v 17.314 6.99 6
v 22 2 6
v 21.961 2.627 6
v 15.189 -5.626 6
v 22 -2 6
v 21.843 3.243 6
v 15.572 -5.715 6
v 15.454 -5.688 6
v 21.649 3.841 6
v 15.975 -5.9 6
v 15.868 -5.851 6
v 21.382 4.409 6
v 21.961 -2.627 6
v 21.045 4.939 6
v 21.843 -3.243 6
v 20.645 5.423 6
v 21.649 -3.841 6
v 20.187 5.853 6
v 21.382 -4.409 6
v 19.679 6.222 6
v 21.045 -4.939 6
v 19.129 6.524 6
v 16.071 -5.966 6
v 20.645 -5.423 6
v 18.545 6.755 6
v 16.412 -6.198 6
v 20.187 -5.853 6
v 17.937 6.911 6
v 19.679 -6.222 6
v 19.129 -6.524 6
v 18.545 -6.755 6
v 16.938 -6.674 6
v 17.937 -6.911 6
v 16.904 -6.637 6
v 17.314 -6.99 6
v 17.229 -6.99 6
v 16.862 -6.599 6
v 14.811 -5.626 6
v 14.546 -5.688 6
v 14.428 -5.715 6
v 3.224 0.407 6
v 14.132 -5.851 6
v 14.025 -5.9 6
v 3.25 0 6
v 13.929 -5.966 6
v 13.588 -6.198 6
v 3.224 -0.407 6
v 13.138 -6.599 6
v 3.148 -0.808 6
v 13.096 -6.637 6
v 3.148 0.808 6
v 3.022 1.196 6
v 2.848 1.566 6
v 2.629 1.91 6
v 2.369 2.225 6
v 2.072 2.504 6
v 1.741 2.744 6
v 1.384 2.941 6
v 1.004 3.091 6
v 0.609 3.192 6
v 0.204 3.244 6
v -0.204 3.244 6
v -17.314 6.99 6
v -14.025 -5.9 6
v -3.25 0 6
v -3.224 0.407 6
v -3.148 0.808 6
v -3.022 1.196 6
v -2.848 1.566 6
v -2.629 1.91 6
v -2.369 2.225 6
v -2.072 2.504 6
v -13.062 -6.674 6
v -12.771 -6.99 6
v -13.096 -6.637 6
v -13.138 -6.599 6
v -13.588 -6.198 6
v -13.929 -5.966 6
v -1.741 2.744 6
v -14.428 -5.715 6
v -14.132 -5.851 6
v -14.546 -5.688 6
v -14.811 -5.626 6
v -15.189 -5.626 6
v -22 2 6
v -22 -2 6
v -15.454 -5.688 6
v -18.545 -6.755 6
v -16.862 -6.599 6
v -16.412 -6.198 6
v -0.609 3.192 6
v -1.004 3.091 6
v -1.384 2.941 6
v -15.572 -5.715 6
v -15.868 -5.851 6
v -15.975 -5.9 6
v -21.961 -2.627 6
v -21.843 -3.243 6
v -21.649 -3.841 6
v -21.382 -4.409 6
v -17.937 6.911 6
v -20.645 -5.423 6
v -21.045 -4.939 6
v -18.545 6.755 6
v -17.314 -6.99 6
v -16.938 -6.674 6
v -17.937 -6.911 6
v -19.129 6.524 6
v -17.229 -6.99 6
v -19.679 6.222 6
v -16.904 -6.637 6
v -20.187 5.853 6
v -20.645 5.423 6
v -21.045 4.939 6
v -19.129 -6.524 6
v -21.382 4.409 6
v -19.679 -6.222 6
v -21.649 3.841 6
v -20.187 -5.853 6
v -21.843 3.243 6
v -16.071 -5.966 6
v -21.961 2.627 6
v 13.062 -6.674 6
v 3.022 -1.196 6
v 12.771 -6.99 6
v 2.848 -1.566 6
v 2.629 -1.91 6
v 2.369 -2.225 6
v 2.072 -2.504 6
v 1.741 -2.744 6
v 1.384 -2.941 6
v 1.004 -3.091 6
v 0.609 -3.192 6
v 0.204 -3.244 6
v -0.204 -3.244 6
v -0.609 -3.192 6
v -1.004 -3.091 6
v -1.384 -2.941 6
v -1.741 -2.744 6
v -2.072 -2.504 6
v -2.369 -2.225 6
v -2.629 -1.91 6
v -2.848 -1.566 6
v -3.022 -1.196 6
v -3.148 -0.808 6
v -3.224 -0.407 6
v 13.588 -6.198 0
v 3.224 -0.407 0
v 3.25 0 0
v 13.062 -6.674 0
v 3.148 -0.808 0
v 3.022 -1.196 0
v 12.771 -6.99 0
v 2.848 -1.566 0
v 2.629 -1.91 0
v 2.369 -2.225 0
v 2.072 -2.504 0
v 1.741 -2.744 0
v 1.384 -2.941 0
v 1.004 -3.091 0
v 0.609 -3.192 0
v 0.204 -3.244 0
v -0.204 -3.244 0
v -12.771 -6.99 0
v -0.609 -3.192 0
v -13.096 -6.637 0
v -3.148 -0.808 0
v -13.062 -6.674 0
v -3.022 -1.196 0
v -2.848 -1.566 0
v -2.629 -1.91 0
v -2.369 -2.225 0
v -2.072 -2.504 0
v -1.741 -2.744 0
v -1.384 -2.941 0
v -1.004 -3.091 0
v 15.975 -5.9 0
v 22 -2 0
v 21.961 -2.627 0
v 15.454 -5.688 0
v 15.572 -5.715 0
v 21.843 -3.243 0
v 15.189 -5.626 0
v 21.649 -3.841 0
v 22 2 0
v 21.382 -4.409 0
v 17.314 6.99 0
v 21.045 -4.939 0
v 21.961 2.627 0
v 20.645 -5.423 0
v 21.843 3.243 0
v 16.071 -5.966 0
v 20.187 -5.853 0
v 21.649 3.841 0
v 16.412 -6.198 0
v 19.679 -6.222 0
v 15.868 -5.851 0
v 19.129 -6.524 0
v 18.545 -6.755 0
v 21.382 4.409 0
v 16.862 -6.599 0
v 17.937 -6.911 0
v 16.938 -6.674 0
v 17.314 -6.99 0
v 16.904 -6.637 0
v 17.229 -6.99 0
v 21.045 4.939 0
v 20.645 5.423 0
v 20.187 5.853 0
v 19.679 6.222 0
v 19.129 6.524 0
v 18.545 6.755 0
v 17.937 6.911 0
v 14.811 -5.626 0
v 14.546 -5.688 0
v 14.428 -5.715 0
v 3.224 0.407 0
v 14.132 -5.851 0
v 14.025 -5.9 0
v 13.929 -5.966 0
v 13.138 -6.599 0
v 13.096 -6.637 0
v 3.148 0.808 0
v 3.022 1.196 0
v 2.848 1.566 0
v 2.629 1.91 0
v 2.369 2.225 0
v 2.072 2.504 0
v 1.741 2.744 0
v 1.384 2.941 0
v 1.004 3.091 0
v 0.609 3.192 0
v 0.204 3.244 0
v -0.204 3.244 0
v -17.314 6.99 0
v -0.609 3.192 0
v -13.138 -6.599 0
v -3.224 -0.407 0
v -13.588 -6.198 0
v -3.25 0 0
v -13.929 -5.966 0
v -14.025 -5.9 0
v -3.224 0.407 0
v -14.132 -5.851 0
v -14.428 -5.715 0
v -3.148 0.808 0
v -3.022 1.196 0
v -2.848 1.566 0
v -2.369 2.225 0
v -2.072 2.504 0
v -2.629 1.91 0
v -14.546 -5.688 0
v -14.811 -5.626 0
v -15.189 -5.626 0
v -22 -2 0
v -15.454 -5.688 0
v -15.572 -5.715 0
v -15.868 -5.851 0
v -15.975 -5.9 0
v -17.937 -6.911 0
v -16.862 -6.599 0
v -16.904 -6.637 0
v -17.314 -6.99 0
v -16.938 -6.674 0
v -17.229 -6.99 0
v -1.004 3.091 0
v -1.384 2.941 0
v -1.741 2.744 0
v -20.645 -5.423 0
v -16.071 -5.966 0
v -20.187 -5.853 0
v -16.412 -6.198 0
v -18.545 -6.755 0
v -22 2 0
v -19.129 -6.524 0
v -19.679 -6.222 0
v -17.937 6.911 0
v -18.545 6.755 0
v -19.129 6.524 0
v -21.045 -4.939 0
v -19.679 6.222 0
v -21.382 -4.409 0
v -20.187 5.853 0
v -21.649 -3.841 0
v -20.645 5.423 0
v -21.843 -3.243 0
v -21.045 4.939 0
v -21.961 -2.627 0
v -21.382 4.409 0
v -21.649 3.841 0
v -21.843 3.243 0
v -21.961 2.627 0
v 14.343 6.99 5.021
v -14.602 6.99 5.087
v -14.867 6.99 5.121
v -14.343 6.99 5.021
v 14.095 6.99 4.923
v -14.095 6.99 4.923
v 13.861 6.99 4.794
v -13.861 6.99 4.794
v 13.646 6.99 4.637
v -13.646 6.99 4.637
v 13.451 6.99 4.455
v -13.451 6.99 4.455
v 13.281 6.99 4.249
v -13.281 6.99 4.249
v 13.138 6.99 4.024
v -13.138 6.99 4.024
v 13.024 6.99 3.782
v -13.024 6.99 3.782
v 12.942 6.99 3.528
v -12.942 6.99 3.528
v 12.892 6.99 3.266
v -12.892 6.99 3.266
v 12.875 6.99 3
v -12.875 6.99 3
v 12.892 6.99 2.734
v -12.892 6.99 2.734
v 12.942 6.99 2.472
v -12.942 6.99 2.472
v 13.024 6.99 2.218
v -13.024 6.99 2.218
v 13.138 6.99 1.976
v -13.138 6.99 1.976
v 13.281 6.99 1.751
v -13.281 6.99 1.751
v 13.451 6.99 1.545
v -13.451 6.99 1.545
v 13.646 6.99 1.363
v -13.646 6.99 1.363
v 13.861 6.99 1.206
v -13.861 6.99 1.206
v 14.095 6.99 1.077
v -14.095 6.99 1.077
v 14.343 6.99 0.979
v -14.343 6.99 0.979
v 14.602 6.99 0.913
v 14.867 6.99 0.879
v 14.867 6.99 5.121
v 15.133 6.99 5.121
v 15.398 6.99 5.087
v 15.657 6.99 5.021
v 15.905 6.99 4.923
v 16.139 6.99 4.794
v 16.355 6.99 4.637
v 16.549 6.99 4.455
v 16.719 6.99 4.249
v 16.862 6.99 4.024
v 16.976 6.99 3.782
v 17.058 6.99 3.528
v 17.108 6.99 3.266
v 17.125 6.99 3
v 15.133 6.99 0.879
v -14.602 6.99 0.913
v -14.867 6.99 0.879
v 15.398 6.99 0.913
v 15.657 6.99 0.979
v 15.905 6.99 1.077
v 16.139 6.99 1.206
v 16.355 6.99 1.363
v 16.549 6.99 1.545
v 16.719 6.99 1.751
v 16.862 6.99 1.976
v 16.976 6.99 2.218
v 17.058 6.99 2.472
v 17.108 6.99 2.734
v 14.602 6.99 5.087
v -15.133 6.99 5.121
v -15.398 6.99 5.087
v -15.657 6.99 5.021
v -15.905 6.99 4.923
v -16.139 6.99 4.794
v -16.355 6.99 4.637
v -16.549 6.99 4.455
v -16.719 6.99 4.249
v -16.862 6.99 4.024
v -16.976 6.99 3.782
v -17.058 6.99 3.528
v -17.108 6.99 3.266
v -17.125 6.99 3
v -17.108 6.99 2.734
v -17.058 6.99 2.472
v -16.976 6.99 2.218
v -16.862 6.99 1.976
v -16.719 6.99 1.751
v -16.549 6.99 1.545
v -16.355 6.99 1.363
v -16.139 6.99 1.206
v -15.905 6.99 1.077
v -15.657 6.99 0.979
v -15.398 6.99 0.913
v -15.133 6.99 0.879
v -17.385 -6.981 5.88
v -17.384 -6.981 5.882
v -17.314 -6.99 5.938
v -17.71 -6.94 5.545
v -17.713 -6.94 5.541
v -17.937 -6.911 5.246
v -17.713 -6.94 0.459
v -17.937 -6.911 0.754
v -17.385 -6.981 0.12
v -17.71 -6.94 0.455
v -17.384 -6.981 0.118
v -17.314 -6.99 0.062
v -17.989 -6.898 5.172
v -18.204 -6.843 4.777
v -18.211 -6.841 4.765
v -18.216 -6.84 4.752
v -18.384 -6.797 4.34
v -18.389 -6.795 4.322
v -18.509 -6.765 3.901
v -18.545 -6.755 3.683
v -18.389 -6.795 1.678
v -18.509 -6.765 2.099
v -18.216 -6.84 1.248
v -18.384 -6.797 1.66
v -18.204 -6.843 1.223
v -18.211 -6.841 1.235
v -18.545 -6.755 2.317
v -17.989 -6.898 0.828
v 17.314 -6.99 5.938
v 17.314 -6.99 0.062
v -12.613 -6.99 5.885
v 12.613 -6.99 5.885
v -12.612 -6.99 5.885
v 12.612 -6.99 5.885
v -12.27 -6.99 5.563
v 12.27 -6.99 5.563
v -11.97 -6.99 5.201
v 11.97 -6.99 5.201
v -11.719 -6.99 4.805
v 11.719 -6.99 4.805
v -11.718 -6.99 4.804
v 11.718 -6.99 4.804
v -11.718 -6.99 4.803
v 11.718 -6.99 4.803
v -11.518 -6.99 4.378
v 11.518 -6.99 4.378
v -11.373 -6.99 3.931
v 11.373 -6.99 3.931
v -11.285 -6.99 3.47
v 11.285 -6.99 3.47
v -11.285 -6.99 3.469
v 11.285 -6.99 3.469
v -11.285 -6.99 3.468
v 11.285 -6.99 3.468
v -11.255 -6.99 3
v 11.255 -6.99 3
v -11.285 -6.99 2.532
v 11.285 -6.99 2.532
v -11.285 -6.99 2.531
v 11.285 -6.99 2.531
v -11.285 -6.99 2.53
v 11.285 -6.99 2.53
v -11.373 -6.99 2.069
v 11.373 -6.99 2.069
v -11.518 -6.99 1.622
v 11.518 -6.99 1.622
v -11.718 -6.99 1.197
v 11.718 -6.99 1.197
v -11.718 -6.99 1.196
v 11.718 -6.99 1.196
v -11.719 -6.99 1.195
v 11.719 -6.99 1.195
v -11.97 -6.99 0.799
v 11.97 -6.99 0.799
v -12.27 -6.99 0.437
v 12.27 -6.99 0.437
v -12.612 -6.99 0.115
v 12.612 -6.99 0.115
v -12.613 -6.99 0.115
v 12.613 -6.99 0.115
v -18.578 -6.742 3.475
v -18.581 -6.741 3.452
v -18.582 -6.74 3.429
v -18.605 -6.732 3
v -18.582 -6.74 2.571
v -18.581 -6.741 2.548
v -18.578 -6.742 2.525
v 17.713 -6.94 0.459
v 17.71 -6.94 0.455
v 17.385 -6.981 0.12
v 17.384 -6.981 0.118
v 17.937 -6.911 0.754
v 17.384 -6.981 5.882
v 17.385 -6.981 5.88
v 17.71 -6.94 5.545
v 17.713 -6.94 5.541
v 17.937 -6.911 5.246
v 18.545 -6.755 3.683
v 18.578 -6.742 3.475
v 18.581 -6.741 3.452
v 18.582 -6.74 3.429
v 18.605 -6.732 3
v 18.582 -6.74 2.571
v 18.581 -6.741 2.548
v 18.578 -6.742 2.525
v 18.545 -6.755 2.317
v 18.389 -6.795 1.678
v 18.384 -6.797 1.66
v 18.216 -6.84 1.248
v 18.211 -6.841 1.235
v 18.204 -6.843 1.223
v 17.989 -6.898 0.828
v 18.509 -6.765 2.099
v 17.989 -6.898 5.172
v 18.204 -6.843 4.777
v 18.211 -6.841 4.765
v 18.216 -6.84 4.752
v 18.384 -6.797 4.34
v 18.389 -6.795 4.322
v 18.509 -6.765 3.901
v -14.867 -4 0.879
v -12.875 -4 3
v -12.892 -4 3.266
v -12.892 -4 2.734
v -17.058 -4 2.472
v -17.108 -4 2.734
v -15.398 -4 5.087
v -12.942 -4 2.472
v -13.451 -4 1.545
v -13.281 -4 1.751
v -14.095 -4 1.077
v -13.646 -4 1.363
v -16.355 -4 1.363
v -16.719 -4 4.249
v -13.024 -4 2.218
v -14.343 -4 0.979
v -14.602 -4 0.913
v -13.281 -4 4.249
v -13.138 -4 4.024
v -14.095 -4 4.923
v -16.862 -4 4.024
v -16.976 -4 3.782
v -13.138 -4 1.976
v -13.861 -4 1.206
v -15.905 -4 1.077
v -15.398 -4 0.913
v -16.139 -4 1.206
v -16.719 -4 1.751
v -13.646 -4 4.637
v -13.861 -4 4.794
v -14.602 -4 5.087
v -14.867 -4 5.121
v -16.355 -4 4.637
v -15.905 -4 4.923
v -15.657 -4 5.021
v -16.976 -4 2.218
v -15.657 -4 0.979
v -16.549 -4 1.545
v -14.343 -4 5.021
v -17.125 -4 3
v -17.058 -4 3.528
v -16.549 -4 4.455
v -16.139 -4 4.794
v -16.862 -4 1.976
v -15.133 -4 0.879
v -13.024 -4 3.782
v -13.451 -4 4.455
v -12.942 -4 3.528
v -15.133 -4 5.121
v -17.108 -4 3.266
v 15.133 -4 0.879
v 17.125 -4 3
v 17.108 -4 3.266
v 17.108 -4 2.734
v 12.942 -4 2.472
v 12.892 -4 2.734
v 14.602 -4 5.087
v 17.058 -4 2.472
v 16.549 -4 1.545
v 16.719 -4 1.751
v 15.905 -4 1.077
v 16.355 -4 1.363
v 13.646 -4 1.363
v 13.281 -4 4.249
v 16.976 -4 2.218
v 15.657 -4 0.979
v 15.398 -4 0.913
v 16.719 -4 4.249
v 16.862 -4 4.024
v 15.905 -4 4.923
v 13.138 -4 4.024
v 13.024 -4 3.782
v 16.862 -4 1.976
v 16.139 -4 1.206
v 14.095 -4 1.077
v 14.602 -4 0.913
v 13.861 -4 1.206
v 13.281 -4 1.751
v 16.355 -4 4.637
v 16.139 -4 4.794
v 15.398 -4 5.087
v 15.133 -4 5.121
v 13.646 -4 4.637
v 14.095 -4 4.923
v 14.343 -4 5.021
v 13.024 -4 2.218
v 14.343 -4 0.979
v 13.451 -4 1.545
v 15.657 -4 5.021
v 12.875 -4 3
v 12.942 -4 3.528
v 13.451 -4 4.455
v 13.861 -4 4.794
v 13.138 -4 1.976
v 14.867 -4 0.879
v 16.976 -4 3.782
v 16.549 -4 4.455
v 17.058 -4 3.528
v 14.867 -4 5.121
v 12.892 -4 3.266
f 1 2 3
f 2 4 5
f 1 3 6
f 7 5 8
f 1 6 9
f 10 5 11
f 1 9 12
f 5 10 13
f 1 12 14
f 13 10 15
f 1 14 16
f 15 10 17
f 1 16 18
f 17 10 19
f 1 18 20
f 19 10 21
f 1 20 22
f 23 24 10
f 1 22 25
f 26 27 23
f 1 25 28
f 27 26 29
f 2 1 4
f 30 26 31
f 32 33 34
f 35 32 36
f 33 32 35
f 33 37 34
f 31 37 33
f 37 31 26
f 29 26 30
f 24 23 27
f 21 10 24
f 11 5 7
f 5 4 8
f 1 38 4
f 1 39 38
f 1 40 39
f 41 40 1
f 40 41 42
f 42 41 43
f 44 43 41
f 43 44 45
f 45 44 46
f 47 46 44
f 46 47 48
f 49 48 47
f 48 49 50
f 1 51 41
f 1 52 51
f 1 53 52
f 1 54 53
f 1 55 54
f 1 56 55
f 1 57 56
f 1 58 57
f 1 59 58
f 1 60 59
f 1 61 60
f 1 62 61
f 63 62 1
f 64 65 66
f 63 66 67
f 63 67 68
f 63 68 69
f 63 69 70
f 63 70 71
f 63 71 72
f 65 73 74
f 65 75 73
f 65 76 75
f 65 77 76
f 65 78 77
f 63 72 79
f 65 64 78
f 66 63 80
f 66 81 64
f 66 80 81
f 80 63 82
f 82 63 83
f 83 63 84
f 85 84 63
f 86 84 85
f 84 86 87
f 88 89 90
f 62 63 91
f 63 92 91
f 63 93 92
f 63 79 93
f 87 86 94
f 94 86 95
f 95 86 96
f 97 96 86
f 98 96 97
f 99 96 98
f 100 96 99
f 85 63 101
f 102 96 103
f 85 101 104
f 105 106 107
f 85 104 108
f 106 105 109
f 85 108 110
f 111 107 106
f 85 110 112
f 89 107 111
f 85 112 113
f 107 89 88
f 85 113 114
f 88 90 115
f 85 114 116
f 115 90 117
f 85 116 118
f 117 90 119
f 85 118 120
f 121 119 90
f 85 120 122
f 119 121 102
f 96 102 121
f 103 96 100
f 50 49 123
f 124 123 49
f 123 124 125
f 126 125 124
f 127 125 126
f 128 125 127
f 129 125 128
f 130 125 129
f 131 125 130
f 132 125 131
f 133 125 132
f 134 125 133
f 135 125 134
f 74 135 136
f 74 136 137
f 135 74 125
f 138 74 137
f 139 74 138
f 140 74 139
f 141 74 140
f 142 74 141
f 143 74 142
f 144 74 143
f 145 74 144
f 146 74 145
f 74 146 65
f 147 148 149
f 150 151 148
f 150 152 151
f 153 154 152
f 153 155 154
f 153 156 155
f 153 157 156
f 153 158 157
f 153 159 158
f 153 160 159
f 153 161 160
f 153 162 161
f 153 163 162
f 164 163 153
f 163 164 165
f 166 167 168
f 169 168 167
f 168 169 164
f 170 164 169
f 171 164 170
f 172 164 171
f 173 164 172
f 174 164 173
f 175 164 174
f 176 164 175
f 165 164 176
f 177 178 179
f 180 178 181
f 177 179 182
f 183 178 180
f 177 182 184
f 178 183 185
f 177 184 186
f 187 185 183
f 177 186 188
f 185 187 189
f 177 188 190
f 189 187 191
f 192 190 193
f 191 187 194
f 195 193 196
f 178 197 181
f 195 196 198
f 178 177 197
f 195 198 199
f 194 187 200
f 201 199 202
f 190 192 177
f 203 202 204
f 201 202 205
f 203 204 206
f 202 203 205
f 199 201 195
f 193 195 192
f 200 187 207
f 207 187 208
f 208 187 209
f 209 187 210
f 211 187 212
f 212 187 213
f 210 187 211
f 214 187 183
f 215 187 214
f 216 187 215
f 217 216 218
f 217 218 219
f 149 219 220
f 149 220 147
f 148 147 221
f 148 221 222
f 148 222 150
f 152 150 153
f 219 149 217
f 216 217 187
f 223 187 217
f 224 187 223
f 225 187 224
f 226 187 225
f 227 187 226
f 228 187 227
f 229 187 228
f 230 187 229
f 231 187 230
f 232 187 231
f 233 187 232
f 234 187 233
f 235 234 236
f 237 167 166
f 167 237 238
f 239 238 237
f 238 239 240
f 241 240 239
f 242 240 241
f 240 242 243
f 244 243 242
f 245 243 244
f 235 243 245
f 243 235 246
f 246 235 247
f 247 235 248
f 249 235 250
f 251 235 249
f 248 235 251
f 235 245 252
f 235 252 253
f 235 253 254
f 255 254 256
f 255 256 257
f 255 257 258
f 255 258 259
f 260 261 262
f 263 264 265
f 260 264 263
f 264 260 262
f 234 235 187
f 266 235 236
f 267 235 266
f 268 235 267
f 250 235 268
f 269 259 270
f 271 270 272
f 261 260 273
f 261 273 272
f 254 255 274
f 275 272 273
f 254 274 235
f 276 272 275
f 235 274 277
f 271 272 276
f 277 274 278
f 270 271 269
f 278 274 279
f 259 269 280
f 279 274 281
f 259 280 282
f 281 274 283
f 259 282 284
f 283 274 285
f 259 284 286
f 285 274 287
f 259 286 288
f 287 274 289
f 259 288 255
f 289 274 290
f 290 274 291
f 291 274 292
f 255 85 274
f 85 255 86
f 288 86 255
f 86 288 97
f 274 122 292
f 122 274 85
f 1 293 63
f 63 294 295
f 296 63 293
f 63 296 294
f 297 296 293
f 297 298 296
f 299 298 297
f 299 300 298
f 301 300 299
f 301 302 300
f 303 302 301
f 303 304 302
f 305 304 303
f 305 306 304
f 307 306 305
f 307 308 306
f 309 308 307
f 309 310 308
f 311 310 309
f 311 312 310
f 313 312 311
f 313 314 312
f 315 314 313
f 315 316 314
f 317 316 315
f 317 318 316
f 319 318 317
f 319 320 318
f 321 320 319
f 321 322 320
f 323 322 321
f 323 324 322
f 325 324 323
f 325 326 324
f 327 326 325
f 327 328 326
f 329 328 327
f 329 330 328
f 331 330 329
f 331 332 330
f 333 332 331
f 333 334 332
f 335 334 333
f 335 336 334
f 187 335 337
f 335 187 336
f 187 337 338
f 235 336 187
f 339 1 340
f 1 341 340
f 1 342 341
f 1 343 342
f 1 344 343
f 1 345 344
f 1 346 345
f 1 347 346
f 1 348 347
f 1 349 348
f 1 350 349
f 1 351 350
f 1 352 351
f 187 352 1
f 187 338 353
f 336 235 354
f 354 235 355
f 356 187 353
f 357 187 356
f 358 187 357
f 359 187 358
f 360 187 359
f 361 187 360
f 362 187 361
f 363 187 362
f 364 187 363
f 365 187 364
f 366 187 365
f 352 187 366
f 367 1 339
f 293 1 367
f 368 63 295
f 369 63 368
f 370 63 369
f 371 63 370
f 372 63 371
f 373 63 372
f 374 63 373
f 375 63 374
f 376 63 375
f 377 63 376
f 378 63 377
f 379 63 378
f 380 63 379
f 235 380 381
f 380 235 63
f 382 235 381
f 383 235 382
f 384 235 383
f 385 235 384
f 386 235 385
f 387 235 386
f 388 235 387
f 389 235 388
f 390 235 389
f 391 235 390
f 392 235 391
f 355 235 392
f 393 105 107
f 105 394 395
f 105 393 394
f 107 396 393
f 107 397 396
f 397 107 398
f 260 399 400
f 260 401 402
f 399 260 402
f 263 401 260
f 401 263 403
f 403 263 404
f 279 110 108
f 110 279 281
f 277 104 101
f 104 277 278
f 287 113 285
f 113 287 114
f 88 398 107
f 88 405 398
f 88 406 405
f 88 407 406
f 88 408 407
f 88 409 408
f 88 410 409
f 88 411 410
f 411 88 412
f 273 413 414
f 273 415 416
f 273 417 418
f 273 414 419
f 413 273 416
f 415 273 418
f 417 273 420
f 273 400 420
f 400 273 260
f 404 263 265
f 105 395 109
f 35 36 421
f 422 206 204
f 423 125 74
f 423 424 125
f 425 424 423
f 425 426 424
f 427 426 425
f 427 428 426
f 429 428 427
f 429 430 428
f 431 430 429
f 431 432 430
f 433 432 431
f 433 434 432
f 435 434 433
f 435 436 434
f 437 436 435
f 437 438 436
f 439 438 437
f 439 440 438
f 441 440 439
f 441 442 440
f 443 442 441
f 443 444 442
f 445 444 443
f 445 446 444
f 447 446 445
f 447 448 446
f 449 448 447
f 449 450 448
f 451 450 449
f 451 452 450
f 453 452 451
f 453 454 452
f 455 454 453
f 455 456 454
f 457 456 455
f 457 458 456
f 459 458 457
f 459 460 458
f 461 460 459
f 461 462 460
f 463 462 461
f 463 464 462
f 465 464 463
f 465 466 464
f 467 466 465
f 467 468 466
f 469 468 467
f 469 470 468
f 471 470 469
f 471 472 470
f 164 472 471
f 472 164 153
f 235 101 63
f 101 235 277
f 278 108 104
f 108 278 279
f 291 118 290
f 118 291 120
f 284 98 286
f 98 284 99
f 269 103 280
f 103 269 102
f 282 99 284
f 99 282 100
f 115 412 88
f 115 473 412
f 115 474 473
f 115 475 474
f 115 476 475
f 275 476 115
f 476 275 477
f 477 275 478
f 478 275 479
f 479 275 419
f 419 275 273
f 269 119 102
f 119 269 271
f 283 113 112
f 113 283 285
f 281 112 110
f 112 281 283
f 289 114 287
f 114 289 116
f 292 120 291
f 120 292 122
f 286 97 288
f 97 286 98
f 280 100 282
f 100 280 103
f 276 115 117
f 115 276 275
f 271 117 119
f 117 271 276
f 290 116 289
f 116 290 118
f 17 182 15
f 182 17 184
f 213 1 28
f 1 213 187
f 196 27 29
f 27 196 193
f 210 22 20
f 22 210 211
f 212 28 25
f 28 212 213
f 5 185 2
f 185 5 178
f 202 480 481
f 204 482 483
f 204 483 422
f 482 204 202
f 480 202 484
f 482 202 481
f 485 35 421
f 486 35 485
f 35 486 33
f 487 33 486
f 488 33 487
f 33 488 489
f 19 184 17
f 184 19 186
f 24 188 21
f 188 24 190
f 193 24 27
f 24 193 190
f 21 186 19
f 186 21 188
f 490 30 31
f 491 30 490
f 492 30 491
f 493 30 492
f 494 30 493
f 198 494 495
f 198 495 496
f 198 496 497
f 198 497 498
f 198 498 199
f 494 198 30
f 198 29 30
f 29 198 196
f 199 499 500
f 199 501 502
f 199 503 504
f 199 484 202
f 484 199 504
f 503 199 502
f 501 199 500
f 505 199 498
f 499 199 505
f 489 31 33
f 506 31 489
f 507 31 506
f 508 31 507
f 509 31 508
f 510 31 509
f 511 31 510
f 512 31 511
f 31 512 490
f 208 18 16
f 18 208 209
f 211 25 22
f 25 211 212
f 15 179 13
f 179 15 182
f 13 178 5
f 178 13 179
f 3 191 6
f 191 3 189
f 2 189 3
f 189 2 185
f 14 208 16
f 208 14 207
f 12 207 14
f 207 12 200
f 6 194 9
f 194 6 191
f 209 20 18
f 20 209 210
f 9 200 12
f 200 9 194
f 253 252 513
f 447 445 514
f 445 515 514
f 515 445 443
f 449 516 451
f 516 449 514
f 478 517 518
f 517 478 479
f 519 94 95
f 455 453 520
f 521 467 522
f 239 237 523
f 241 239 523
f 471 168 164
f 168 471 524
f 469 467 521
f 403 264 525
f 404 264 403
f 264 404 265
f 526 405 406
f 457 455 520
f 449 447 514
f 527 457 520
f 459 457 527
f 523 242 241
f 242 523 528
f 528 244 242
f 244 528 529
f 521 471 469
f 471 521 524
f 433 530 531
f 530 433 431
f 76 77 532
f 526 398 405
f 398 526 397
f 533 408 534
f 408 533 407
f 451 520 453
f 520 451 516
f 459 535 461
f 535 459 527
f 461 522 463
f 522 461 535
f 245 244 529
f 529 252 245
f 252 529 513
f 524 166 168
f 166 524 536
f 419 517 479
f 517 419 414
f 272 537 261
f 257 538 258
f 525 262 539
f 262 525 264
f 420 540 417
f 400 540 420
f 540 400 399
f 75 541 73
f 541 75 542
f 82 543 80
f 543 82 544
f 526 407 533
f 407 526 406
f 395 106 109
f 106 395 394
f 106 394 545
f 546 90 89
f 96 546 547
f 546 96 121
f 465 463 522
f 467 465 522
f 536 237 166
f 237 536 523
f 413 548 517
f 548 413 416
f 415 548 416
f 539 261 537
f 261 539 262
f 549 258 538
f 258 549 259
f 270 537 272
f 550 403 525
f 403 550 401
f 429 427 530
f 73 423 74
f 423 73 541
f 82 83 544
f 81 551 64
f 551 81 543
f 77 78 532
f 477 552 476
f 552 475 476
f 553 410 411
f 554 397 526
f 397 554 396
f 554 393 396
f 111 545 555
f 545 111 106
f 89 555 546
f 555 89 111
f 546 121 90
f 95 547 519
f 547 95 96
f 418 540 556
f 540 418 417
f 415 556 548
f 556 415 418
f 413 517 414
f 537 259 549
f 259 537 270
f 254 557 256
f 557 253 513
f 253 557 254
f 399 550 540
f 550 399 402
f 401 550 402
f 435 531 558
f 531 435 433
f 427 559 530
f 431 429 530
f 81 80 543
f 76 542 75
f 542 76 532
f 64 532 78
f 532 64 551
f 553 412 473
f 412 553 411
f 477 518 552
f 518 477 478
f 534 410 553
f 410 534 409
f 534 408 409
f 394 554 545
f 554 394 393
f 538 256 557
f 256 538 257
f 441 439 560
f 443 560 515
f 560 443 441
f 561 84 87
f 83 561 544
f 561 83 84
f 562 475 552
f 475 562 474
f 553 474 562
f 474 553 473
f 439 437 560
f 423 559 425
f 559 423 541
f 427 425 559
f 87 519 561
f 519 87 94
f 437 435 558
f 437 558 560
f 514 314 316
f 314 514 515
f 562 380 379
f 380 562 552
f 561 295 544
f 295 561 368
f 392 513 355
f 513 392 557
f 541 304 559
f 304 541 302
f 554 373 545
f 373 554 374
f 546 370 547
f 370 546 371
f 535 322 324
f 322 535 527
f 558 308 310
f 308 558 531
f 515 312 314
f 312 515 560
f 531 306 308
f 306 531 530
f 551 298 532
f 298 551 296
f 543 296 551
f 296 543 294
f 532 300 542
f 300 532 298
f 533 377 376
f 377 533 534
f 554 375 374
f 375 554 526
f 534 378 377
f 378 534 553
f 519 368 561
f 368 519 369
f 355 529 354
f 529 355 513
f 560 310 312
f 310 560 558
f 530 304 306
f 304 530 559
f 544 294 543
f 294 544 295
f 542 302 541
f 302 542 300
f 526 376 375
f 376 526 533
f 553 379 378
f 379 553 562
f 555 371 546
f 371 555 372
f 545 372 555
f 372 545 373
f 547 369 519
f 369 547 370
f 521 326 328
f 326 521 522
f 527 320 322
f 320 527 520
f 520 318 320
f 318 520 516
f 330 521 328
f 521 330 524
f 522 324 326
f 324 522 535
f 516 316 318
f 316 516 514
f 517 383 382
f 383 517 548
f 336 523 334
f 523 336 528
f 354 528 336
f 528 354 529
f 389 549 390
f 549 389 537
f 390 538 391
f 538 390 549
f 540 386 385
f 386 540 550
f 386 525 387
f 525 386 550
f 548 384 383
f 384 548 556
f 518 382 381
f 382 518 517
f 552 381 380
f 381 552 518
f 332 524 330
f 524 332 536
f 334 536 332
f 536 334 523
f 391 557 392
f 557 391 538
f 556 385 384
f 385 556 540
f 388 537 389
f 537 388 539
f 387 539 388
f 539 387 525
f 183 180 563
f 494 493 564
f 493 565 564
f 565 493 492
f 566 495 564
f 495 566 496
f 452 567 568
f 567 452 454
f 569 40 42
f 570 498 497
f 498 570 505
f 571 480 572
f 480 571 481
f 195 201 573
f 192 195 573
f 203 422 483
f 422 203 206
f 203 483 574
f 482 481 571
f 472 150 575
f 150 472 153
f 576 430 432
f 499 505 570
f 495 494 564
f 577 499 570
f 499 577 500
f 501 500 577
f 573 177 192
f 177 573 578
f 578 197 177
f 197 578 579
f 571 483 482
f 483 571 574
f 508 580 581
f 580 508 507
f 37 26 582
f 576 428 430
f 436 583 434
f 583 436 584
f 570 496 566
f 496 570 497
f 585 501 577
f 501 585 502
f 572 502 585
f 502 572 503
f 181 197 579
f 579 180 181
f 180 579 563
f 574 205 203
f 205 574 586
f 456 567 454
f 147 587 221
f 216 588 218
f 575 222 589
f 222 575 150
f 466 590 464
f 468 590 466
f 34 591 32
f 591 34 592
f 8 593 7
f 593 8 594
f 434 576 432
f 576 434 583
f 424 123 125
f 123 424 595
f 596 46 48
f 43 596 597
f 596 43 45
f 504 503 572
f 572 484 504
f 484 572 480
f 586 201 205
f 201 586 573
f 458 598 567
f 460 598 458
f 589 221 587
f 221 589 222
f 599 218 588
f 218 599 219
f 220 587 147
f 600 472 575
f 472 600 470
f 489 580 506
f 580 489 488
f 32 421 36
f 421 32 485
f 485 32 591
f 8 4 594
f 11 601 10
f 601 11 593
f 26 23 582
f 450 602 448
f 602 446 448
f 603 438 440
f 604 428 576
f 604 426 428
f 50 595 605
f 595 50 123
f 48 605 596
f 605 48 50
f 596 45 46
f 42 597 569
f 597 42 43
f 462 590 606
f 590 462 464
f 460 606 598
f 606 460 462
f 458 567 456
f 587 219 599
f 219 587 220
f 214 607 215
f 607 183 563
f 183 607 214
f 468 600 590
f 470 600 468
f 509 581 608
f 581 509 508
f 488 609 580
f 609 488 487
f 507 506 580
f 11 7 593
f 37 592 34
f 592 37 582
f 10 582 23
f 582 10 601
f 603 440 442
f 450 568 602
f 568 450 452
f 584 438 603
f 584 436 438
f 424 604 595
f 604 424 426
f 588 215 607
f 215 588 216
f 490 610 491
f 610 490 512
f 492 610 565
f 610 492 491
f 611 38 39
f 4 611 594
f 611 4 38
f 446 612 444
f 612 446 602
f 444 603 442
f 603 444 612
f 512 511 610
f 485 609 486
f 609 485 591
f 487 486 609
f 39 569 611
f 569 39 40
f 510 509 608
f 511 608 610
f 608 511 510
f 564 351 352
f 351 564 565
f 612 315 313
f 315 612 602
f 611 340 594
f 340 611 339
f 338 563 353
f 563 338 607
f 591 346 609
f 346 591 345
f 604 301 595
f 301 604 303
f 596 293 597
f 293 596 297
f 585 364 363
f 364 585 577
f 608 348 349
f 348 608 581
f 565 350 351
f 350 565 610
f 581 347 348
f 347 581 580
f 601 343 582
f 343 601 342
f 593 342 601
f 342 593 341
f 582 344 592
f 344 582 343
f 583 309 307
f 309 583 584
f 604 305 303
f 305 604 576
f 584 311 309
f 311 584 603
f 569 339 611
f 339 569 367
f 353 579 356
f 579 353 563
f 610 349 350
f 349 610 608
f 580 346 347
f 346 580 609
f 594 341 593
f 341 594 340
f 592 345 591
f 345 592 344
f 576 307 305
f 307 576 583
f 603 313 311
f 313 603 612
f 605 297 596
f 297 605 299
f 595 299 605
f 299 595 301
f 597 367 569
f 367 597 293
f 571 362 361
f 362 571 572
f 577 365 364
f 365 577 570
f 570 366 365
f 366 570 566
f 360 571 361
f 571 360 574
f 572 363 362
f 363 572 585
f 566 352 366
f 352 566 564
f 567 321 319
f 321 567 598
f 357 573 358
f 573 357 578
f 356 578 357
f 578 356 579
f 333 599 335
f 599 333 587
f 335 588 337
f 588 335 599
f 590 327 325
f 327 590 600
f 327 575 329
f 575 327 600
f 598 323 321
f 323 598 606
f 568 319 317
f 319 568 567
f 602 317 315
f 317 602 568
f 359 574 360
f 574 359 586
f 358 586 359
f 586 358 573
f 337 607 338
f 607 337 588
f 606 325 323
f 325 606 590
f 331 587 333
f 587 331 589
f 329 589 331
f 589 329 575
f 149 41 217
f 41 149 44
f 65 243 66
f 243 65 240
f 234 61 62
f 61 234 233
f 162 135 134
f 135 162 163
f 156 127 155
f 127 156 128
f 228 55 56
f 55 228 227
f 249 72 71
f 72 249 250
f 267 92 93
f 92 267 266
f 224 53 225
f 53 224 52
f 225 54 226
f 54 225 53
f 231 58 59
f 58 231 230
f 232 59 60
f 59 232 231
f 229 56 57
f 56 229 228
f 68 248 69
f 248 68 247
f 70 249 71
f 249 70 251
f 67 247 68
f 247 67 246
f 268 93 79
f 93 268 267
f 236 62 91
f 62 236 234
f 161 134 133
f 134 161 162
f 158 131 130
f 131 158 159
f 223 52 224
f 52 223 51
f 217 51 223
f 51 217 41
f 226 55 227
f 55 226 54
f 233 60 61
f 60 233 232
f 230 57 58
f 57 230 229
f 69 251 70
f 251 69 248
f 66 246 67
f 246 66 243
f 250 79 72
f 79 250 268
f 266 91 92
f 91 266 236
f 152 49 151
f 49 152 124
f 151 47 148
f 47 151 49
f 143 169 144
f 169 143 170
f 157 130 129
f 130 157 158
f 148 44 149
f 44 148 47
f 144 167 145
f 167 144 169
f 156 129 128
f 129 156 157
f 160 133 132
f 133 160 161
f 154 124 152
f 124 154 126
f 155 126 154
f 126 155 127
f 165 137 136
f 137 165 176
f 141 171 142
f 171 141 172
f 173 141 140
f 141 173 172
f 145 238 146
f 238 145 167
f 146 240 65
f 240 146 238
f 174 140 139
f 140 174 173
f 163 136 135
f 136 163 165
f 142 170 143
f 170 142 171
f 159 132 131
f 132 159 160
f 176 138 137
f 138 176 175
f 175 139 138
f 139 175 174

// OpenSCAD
$fn = 50;


difference() {
	union() {
		cylinder(h = 6, r = 7.0000000000);
		translate(v = [-7.5000000000, 0.0000000000, 0]) {
			hull() {
				translate(v = [-9.5000000000, 2.0000000000, 0]) {
					cylinder(h = 6, r = 5);
				}
				translate(v = [9.5000000000, 2.0000000000, 0]) {
					cylinder(h = 6, r = 5);
				}
				translate(v = [-9.5000000000, -2.0000000000, 0]) {
					cylinder(h = 6, r = 5);
				}
				translate(v = [9.5000000000, -2.0000000000, 0]) {
					cylinder(h = 6, r = 5);
				}
			}
		}
		translate(v = [7.5000000000, 0.0000000000, 0]) {
			hull() {
				translate(v = [-9.5000000000, 2.0000000000, 0]) {
					cylinder(h = 6, r = 5);
				}
				translate(v = [9.5000000000, 2.0000000000, 0]) {
					cylinder(h = 6, r = 5);
				}
				translate(v = [-9.5000000000, -2.0000000000, 0]) {
					cylinder(h = 6, r = 5);
				}
				translate(v = [9.5000000000, -2.0000000000, 0]) {
					cylinder(h = 6, r = 5);
				}
			}
		}
	}
	union() {
		translate(v = [-15.0000000000, -7.0000000000, 3.0000000000]) {
			rotate(a = [90, 0, 0]) {
				difference() {
					union() {
						#translate(v = [0, 0, -14.0000000000]) {
							cylinder(h = 14, r = 2.0000000000);
						}
						#translate(v = [0, 0, -3]) {
							cylinder(h = 3, r1 = 2.1250000000, r2 = 3.7500000000);
						}
						#translate(v = [0, 0, -14.0000000000]) {
							cylinder(h = 14, r = 2.1250000000);
						}
						#translate(v = [0, 0, -14.0000000000]) {
							cylinder(h = 14, r = 2.0000000000);
						}
					}
					union();
				}
			}
		}
		translate(v = [15.0000000000, -7.0000000000, 3.0000000000]) {
			rotate(a = [90, 0, 0]) {
				difference() {
					union() {
						#translate(v = [0, 0, -14.0000000000]) {
							cylinder(h = 14, r = 2.0000000000);
						}
						#translate(v = [0, 0, -3]) {
							cylinder(h = 3, r1 = 2.1250000000, r2 = 3.7500000000);
						}
						#translate(v = [0, 0, -14.0000000000]) {
							cylinder(h = 14, r = 2.1250000000);
						}
						#translate(v = [0, 0, -14.0000000000]) {
							cylinder(h = 14, r = 2.0000000000);
						}
					}
					union();
				}
			}
		}
		translate(v = [0, 0, -100]) {
			cylinder(h = 200, r = 3.2500000000);
		}
		translate(v = [0, 0, -100]) {
			cylinder(h = 200, r = 1.8000000000);
		}
	}
}
